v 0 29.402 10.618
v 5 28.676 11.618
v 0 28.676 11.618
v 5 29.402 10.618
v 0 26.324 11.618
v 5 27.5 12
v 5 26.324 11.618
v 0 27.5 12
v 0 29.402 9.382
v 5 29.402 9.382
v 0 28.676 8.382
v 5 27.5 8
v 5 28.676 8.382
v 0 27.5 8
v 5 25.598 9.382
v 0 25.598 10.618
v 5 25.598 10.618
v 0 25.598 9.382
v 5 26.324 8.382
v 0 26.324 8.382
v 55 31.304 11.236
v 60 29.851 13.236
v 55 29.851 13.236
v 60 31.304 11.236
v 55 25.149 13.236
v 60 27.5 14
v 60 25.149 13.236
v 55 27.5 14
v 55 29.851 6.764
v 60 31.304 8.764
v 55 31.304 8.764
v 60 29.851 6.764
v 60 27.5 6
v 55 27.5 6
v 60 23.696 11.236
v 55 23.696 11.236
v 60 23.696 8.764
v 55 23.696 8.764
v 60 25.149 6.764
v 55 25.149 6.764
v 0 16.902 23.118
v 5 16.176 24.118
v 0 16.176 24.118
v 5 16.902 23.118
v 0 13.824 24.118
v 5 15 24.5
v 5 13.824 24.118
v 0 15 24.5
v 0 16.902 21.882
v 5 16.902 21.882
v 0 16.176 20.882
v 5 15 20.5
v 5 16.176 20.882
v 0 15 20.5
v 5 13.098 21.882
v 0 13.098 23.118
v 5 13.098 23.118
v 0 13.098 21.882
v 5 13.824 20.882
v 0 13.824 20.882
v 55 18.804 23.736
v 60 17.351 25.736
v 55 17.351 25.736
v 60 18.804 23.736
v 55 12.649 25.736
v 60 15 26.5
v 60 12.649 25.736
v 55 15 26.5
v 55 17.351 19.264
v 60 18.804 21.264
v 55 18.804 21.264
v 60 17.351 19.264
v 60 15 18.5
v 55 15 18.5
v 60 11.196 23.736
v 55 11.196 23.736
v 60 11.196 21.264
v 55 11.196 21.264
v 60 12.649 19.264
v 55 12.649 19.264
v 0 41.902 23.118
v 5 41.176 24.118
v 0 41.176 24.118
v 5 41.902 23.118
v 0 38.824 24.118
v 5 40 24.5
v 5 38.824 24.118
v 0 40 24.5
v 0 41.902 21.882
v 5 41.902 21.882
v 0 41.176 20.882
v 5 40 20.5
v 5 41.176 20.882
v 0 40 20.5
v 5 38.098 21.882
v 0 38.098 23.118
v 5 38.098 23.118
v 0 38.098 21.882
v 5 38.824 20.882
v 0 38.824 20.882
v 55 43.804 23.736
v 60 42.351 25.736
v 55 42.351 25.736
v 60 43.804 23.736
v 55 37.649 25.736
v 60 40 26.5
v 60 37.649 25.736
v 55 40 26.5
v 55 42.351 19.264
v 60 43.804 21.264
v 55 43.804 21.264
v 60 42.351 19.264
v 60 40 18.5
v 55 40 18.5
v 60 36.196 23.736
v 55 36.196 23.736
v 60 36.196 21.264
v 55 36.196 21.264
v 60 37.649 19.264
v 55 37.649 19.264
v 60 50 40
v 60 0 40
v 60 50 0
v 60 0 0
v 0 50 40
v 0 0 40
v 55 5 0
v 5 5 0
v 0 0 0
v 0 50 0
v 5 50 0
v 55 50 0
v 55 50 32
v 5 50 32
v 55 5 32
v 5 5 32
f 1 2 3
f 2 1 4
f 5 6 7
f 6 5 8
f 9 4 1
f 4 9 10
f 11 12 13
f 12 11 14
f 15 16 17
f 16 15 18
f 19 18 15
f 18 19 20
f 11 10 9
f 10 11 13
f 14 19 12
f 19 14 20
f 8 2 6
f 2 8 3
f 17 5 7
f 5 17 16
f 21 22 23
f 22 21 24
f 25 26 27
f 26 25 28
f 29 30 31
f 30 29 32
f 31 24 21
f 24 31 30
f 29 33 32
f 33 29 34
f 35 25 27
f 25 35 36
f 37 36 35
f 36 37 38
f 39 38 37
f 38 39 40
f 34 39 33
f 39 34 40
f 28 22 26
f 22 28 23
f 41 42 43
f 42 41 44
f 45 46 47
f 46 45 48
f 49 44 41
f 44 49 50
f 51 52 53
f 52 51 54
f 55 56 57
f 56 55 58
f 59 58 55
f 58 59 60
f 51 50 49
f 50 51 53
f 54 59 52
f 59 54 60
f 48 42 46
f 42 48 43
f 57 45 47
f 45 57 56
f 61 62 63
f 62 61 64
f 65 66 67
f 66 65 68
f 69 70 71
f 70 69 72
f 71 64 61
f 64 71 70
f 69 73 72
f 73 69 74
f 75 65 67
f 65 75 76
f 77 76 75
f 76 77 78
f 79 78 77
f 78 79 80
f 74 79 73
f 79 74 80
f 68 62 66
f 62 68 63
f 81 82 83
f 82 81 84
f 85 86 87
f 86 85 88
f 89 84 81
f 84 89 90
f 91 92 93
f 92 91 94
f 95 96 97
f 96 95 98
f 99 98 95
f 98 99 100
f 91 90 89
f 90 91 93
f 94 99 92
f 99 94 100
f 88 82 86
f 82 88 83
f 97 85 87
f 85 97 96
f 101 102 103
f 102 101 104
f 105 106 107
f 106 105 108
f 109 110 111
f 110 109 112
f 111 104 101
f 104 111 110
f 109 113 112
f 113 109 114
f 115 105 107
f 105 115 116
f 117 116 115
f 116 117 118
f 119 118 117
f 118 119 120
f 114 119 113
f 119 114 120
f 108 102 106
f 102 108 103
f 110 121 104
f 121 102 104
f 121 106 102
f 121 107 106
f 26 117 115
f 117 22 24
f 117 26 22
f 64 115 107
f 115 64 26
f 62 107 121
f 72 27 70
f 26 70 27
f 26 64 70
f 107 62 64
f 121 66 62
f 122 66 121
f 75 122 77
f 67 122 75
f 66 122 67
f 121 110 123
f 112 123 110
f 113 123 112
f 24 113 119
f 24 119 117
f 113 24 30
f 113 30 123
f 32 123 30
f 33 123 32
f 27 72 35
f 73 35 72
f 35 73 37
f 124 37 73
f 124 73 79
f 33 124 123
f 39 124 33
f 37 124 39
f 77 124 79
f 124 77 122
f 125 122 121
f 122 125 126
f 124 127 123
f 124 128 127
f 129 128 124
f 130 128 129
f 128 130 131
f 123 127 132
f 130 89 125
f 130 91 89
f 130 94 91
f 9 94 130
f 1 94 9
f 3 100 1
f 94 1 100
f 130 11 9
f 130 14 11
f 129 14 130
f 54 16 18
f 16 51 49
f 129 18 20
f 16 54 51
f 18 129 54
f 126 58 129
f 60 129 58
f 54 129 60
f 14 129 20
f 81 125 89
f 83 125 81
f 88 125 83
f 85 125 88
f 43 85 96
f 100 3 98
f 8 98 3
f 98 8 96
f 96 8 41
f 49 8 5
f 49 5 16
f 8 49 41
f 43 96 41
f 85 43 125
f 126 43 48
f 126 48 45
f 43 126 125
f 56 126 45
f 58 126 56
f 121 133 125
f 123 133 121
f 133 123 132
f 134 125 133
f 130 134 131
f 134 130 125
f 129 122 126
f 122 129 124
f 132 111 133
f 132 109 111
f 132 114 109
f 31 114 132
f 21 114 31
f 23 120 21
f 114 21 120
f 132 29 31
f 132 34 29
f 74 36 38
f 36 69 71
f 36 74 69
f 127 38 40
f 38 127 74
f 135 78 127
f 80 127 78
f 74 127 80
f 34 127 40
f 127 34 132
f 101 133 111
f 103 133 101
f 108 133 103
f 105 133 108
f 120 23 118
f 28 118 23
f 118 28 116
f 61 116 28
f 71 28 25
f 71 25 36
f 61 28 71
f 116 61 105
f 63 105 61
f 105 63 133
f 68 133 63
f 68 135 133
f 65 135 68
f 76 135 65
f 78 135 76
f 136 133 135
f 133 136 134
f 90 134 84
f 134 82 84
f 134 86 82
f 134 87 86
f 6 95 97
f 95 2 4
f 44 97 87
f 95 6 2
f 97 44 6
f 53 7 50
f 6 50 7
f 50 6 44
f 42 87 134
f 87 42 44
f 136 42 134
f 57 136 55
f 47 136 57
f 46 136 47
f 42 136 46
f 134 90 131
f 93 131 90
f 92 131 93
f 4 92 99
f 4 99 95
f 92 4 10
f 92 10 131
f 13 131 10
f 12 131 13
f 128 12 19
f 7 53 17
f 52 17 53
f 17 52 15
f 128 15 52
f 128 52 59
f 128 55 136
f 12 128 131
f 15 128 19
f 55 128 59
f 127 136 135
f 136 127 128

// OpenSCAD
// 1. 전체 외곽 사이즈 설정
width = 50+10;  // 가로
depth = 50;  // 세로(깊이)
height = 40; // 높이
wall = 10;    // 벽 두께

difference() {
    // 가장 바깥쪽 큰 직육면체
    difference() {
        cube([width, depth, height]);
        translate([5, 5, -8])
            cube([width-10, depth, height]);
        screw(15+(25/2), 10);
        //screw(15+25, 10);
        screw(15, 10+12.5);
        screw(15+25, 10+12.5);
    }
}

module screw(y, z) {
    translate([0,y,z])
        union() {
            translate([-6,0,0]) rotate([0,90,0]) cylinder(20, 2, 2, $fn=10);
            translate([6,0,0]) rotate([0,90,0]) cylinder(80, 4, 4, $fn=10);
        }
}
    
